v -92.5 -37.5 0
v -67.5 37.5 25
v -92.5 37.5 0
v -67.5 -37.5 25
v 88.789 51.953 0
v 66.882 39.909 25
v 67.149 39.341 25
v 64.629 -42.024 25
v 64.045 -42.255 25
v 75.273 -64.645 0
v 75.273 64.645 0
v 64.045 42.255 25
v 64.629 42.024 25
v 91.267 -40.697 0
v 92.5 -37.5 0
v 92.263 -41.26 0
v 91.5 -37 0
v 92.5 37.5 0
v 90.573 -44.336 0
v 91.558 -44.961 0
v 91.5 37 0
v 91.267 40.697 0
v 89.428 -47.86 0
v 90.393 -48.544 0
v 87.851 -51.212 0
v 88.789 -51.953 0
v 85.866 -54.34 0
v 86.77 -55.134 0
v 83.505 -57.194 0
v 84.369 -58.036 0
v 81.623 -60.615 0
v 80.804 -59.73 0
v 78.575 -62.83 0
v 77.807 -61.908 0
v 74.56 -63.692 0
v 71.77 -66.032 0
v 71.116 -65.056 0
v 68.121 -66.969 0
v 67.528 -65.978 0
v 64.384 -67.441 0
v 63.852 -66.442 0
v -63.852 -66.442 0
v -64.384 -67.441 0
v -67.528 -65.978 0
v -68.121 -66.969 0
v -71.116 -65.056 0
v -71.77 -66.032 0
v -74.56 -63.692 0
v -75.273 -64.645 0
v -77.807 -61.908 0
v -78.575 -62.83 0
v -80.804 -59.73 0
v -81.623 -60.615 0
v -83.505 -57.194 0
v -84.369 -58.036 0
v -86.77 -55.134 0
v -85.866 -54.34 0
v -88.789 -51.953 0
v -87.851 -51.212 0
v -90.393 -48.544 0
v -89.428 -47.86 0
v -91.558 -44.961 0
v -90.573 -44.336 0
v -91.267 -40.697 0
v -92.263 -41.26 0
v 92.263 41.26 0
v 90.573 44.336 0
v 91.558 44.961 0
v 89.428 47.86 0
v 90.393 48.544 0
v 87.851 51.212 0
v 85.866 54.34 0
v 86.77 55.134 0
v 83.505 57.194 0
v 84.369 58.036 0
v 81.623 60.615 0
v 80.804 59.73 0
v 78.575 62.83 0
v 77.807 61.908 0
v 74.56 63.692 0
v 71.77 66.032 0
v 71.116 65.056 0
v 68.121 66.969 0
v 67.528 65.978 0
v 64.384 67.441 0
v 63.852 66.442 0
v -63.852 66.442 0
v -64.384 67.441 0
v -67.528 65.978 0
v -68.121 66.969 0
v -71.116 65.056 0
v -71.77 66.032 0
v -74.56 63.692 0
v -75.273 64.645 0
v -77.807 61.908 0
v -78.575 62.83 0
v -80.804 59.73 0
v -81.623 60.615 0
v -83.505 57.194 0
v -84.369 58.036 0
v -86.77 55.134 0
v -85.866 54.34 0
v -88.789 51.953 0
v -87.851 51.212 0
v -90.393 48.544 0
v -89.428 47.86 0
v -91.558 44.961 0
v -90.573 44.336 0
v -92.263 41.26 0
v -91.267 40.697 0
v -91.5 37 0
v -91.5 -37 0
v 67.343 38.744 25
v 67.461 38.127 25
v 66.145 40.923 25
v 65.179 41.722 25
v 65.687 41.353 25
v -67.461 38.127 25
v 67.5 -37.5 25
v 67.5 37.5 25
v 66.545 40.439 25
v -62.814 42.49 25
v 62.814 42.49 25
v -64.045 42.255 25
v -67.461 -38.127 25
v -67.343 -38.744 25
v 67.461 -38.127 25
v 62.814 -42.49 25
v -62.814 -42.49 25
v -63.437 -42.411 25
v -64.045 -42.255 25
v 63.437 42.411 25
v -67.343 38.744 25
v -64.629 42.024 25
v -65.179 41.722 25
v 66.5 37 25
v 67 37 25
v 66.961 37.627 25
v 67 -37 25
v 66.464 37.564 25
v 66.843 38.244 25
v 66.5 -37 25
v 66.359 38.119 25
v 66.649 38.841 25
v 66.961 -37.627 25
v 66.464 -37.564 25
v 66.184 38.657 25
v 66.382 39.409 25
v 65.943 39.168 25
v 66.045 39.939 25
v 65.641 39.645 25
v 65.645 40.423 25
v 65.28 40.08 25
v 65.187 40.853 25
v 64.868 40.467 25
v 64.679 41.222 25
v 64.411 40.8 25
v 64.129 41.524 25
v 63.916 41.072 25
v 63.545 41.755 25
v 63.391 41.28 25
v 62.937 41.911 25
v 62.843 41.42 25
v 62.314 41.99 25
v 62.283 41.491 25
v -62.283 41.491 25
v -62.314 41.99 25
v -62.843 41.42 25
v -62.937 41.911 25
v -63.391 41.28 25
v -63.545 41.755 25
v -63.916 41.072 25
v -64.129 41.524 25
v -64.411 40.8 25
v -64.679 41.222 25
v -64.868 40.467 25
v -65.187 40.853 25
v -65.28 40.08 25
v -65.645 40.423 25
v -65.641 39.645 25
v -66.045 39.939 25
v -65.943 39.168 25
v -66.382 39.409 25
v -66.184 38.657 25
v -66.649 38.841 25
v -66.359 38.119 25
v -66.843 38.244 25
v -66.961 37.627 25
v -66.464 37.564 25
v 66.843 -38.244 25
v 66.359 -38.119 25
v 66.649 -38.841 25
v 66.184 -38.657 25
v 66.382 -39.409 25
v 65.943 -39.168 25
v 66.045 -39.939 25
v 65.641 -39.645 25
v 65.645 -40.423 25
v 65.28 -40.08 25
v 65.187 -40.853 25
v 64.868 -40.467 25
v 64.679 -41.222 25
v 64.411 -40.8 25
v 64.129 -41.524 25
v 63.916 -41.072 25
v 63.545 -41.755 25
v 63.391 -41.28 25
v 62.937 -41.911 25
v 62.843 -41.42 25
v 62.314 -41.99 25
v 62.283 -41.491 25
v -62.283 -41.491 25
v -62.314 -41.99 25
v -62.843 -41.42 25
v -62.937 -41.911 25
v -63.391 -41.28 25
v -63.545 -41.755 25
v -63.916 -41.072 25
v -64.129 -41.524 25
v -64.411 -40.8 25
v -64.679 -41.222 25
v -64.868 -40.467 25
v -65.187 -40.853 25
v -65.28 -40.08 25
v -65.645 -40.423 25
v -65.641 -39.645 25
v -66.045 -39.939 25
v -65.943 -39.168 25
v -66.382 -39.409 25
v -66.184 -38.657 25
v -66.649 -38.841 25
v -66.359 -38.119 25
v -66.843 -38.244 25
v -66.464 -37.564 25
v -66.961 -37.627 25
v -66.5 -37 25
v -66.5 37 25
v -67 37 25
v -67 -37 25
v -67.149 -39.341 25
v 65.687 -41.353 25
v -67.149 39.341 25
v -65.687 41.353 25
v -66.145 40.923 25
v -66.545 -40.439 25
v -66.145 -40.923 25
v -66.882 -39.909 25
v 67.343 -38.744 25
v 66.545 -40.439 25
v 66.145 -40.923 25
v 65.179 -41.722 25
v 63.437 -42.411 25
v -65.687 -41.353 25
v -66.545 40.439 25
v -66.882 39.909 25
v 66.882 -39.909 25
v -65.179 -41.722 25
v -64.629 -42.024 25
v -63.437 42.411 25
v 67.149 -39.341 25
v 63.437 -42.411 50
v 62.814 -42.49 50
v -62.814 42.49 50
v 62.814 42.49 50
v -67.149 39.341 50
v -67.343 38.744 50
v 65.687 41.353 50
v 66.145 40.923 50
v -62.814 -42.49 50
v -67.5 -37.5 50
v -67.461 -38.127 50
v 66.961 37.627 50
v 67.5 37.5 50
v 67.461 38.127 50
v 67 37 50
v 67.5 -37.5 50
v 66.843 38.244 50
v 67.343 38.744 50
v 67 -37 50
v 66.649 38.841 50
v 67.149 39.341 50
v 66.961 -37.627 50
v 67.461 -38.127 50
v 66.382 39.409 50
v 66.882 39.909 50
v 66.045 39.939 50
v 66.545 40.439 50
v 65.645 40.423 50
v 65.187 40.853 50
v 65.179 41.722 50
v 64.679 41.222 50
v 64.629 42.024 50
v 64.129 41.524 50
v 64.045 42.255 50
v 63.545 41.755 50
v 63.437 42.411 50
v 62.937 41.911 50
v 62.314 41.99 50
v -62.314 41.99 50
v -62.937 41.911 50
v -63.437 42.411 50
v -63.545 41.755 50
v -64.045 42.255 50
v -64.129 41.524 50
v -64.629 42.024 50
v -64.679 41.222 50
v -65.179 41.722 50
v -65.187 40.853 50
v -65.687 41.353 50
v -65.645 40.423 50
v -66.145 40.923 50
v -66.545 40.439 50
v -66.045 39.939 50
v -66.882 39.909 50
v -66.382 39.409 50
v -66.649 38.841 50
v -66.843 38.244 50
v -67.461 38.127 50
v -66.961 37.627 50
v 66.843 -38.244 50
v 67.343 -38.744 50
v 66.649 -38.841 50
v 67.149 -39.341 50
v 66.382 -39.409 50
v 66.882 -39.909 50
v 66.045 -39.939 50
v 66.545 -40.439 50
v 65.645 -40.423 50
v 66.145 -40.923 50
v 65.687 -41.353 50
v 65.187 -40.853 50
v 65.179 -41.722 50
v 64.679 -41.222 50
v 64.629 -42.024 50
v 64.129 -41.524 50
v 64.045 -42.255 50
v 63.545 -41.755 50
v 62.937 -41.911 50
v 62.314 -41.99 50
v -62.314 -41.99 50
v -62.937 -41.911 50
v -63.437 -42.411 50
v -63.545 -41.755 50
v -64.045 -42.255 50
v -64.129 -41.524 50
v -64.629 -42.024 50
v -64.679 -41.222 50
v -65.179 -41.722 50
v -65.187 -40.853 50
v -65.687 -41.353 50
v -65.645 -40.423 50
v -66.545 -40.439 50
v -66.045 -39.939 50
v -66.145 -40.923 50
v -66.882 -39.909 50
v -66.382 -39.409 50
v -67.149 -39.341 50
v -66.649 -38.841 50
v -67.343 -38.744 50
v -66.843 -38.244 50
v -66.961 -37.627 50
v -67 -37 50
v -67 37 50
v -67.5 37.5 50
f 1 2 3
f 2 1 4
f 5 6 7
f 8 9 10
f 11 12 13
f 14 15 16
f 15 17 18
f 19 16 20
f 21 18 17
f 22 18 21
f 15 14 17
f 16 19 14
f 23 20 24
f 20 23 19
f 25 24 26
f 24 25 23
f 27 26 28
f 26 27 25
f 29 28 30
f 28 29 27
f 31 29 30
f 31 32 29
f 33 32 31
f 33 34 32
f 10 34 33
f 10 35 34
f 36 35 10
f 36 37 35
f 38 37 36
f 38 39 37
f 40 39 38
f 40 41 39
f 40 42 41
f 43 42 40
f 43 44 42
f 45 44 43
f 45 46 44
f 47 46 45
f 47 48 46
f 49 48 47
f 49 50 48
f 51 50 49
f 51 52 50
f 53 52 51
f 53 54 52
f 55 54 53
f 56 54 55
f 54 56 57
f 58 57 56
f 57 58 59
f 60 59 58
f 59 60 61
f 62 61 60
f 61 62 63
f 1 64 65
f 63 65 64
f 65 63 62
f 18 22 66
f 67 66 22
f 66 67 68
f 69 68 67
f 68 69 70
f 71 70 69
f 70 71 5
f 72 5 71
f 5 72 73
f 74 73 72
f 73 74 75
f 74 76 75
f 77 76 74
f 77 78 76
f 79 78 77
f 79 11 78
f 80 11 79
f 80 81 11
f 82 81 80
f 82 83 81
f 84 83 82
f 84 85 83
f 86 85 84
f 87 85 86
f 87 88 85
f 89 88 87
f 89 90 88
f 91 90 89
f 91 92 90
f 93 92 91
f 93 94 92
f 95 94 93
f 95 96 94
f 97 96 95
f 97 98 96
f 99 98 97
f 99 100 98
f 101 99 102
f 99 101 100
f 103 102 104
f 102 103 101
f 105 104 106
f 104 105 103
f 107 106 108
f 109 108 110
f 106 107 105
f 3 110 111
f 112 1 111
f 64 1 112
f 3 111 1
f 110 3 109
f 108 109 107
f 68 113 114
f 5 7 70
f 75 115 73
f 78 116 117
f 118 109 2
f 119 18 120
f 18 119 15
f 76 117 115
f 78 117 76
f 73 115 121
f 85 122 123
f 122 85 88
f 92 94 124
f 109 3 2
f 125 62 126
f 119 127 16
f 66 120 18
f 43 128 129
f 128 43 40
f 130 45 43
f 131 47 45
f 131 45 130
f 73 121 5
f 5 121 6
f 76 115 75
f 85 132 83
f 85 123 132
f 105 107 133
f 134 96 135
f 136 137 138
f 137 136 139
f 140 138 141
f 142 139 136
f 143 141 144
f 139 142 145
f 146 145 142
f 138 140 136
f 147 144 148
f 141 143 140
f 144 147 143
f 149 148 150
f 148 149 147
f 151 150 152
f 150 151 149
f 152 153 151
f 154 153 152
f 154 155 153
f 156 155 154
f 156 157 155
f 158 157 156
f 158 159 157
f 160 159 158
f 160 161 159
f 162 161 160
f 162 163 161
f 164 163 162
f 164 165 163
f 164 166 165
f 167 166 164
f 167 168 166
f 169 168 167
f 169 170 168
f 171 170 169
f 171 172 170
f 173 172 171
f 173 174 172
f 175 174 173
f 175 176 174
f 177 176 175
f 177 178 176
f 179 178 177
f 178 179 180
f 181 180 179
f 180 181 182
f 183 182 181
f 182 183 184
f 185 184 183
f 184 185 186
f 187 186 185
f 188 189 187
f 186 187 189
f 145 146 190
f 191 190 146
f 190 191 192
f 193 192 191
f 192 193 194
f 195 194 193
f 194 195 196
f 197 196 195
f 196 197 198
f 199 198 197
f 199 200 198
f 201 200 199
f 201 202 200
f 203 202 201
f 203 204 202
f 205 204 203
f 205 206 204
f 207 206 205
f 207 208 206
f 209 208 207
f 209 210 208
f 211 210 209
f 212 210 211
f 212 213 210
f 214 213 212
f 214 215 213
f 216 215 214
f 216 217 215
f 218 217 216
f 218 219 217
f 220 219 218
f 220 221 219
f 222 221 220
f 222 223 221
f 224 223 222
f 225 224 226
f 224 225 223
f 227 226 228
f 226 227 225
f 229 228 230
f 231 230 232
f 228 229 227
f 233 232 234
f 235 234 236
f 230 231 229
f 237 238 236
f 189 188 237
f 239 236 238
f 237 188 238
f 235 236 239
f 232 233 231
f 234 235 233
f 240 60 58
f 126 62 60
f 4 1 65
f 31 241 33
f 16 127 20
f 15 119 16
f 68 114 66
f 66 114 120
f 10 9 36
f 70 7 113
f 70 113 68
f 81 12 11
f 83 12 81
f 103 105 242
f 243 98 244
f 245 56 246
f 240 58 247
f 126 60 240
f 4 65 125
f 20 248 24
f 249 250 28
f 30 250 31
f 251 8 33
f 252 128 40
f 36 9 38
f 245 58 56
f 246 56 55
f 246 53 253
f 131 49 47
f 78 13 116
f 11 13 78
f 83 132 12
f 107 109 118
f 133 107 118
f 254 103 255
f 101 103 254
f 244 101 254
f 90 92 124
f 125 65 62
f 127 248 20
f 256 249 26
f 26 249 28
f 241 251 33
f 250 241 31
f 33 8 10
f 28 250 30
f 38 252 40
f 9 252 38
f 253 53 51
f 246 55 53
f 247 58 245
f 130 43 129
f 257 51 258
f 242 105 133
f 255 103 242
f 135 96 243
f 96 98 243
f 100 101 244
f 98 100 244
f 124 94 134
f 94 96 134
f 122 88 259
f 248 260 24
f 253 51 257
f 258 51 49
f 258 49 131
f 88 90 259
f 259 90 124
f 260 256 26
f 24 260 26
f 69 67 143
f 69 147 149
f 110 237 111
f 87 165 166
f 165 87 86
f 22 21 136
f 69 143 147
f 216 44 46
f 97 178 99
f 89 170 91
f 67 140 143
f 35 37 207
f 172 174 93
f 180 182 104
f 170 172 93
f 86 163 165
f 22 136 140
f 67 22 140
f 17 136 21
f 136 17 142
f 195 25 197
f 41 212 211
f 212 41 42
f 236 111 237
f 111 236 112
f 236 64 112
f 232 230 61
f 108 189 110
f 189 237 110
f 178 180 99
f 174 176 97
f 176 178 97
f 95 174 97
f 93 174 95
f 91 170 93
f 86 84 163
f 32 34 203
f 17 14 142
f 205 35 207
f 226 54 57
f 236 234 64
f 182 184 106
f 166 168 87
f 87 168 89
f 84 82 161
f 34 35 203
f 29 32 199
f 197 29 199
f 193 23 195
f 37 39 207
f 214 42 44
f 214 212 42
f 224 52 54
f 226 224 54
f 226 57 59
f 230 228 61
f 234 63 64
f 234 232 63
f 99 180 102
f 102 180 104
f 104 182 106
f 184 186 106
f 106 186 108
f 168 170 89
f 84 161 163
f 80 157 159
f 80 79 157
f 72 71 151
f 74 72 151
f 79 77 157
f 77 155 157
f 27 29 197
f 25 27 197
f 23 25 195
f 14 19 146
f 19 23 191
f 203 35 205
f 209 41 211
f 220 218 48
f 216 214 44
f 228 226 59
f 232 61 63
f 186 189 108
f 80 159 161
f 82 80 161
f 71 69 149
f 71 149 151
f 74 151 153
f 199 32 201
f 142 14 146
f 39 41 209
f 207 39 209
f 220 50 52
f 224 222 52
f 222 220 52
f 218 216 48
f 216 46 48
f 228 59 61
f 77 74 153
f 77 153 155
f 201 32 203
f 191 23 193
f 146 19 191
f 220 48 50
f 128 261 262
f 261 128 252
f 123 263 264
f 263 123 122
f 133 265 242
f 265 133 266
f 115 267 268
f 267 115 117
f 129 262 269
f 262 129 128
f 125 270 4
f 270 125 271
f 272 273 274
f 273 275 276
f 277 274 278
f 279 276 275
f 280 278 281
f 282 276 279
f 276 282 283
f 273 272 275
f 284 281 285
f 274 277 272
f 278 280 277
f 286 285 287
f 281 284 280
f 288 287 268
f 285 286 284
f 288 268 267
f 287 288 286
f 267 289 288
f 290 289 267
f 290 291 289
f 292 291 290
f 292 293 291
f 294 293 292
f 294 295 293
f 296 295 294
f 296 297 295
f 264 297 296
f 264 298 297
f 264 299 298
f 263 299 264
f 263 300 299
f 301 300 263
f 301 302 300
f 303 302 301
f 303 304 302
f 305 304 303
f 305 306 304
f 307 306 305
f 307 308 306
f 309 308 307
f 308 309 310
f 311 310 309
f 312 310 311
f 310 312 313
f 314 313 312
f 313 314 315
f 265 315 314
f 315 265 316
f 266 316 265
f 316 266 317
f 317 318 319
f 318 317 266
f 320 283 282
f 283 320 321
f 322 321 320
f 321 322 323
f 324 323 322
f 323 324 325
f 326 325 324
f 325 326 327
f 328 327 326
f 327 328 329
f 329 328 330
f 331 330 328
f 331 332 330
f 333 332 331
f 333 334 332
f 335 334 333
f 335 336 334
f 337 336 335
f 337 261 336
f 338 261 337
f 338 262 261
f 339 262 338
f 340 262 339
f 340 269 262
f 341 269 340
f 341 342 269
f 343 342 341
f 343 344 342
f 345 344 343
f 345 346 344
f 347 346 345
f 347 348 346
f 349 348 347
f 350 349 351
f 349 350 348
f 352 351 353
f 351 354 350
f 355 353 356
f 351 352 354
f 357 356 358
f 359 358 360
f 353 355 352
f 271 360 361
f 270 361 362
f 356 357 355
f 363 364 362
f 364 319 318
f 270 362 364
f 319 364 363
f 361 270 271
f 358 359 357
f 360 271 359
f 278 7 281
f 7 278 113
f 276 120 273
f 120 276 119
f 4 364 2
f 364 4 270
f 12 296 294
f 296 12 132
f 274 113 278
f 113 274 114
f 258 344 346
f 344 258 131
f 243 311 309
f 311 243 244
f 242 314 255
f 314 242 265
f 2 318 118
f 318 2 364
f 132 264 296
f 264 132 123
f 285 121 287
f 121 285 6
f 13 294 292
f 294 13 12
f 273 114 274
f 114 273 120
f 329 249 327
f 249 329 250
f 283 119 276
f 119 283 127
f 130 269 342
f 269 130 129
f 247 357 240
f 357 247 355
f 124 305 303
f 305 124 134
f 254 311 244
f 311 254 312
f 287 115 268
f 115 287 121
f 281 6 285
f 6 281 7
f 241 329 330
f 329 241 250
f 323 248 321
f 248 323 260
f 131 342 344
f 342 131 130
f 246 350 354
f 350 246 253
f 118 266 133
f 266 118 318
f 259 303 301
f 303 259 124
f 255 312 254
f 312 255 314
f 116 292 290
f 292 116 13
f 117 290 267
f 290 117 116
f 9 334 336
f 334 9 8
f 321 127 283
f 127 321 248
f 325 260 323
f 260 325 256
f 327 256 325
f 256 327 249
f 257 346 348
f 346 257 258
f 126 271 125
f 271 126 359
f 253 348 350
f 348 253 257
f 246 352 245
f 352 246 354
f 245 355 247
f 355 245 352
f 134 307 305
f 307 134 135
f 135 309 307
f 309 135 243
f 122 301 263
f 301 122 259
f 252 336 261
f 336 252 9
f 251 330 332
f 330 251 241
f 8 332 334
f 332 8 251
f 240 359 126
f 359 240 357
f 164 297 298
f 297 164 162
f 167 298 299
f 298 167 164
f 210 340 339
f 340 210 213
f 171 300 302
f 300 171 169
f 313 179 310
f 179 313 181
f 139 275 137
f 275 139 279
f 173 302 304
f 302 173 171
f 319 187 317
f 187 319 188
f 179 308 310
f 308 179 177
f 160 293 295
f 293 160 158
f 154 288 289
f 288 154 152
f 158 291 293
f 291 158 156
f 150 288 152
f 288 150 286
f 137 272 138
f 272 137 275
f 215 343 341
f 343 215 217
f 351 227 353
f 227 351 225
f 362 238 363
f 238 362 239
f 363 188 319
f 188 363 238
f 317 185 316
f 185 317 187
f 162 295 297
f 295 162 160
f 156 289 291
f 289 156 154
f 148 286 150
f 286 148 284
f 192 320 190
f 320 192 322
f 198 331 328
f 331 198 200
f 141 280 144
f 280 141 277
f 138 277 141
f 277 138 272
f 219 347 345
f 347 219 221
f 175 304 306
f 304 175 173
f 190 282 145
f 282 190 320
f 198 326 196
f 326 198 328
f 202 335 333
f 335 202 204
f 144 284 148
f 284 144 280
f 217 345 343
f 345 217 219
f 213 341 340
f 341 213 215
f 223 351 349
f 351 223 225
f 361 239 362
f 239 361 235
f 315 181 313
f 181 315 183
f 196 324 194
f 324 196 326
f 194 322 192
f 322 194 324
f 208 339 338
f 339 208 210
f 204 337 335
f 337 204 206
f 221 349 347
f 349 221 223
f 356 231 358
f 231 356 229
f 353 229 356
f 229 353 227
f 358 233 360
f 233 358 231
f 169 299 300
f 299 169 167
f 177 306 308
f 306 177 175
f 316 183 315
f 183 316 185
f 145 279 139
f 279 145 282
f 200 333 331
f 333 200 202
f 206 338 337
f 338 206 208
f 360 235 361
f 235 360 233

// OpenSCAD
$fn = 50;


difference() {
	union() {
		translate(v = [0, 0, 0]) {
			rotate(a = [0, 0, 0]) {
				difference() {
					union() {
						hull() {
							translate(v = [-62.5000000000, 37.5000000000, 0]) {
								cylinder(h = 25, r = 5, r1 = 30.0000000000, r2 = 5);
							}
							translate(v = [62.5000000000, 37.5000000000, 0]) {
								cylinder(h = 25, r = 5, r1 = 30.0000000000, r2 = 5);
							}
							translate(v = [-62.5000000000, -37.5000000000, 0]) {
								cylinder(h = 25, r = 5, r1 = 30.0000000000, r2 = 5);
							}
							translate(v = [62.5000000000, -37.5000000000, 0]) {
								cylinder(h = 25, r = 5, r1 = 30.0000000000, r2 = 5);
							}
						}
					}
					union() {
						hull() {
							translate(v = [-62.0000000000, 37.0000000000, 0]) {
								cylinder(h = 25, r = 5, r1 = 29.5000000000, r2 = 4.5000000000);
							}
							translate(v = [62.0000000000, 37.0000000000, 0]) {
								cylinder(h = 25, r = 5, r1 = 29.5000000000, r2 = 4.5000000000);
							}
							translate(v = [-62.0000000000, -37.0000000000, 0]) {
								cylinder(h = 25, r = 5, r1 = 29.5000000000, r2 = 4.5000000000);
							}
							translate(v = [62.0000000000, -37.0000000000, 0]) {
								cylinder(h = 25, r = 5, r1 = 29.5000000000, r2 = 4.5000000000);
							}
						}
					}
				}
			}
		}
		translate(v = [0, 0, 25]) {
			rotate(a = [0, 0, 0]) {
				difference() {
					union() {
						hull() {
							translate(v = [-62.5000000000, 37.5000000000, 0]) {
								cylinder(h = 25, r = 5);
							}
							translate(v = [62.5000000000, 37.5000000000, 0]) {
								cylinder(h = 25, r = 5);
							}
							translate(v = [-62.5000000000, -37.5000000000, 0]) {
								cylinder(h = 25, r = 5);
							}
							translate(v = [62.5000000000, -37.5000000000, 0]) {
								cylinder(h = 25, r = 5);
							}
						}
					}
					union() {
						hull() {
							translate(v = [-62.0000000000, 37.0000000000, 0]) {
								cylinder(h = 25, r = 5);
							}
							translate(v = [62.0000000000, 37.0000000000, 0]) {
								cylinder(h = 25, r = 5);
							}
							translate(v = [-62.0000000000, -37.0000000000, 0]) {
								cylinder(h = 25, r = 5);
							}
							translate(v = [62.0000000000, -37.0000000000, 0]) {
								cylinder(h = 25, r = 5);
							}
						}
					}
				}
			}
		}
	}
	union();
}
